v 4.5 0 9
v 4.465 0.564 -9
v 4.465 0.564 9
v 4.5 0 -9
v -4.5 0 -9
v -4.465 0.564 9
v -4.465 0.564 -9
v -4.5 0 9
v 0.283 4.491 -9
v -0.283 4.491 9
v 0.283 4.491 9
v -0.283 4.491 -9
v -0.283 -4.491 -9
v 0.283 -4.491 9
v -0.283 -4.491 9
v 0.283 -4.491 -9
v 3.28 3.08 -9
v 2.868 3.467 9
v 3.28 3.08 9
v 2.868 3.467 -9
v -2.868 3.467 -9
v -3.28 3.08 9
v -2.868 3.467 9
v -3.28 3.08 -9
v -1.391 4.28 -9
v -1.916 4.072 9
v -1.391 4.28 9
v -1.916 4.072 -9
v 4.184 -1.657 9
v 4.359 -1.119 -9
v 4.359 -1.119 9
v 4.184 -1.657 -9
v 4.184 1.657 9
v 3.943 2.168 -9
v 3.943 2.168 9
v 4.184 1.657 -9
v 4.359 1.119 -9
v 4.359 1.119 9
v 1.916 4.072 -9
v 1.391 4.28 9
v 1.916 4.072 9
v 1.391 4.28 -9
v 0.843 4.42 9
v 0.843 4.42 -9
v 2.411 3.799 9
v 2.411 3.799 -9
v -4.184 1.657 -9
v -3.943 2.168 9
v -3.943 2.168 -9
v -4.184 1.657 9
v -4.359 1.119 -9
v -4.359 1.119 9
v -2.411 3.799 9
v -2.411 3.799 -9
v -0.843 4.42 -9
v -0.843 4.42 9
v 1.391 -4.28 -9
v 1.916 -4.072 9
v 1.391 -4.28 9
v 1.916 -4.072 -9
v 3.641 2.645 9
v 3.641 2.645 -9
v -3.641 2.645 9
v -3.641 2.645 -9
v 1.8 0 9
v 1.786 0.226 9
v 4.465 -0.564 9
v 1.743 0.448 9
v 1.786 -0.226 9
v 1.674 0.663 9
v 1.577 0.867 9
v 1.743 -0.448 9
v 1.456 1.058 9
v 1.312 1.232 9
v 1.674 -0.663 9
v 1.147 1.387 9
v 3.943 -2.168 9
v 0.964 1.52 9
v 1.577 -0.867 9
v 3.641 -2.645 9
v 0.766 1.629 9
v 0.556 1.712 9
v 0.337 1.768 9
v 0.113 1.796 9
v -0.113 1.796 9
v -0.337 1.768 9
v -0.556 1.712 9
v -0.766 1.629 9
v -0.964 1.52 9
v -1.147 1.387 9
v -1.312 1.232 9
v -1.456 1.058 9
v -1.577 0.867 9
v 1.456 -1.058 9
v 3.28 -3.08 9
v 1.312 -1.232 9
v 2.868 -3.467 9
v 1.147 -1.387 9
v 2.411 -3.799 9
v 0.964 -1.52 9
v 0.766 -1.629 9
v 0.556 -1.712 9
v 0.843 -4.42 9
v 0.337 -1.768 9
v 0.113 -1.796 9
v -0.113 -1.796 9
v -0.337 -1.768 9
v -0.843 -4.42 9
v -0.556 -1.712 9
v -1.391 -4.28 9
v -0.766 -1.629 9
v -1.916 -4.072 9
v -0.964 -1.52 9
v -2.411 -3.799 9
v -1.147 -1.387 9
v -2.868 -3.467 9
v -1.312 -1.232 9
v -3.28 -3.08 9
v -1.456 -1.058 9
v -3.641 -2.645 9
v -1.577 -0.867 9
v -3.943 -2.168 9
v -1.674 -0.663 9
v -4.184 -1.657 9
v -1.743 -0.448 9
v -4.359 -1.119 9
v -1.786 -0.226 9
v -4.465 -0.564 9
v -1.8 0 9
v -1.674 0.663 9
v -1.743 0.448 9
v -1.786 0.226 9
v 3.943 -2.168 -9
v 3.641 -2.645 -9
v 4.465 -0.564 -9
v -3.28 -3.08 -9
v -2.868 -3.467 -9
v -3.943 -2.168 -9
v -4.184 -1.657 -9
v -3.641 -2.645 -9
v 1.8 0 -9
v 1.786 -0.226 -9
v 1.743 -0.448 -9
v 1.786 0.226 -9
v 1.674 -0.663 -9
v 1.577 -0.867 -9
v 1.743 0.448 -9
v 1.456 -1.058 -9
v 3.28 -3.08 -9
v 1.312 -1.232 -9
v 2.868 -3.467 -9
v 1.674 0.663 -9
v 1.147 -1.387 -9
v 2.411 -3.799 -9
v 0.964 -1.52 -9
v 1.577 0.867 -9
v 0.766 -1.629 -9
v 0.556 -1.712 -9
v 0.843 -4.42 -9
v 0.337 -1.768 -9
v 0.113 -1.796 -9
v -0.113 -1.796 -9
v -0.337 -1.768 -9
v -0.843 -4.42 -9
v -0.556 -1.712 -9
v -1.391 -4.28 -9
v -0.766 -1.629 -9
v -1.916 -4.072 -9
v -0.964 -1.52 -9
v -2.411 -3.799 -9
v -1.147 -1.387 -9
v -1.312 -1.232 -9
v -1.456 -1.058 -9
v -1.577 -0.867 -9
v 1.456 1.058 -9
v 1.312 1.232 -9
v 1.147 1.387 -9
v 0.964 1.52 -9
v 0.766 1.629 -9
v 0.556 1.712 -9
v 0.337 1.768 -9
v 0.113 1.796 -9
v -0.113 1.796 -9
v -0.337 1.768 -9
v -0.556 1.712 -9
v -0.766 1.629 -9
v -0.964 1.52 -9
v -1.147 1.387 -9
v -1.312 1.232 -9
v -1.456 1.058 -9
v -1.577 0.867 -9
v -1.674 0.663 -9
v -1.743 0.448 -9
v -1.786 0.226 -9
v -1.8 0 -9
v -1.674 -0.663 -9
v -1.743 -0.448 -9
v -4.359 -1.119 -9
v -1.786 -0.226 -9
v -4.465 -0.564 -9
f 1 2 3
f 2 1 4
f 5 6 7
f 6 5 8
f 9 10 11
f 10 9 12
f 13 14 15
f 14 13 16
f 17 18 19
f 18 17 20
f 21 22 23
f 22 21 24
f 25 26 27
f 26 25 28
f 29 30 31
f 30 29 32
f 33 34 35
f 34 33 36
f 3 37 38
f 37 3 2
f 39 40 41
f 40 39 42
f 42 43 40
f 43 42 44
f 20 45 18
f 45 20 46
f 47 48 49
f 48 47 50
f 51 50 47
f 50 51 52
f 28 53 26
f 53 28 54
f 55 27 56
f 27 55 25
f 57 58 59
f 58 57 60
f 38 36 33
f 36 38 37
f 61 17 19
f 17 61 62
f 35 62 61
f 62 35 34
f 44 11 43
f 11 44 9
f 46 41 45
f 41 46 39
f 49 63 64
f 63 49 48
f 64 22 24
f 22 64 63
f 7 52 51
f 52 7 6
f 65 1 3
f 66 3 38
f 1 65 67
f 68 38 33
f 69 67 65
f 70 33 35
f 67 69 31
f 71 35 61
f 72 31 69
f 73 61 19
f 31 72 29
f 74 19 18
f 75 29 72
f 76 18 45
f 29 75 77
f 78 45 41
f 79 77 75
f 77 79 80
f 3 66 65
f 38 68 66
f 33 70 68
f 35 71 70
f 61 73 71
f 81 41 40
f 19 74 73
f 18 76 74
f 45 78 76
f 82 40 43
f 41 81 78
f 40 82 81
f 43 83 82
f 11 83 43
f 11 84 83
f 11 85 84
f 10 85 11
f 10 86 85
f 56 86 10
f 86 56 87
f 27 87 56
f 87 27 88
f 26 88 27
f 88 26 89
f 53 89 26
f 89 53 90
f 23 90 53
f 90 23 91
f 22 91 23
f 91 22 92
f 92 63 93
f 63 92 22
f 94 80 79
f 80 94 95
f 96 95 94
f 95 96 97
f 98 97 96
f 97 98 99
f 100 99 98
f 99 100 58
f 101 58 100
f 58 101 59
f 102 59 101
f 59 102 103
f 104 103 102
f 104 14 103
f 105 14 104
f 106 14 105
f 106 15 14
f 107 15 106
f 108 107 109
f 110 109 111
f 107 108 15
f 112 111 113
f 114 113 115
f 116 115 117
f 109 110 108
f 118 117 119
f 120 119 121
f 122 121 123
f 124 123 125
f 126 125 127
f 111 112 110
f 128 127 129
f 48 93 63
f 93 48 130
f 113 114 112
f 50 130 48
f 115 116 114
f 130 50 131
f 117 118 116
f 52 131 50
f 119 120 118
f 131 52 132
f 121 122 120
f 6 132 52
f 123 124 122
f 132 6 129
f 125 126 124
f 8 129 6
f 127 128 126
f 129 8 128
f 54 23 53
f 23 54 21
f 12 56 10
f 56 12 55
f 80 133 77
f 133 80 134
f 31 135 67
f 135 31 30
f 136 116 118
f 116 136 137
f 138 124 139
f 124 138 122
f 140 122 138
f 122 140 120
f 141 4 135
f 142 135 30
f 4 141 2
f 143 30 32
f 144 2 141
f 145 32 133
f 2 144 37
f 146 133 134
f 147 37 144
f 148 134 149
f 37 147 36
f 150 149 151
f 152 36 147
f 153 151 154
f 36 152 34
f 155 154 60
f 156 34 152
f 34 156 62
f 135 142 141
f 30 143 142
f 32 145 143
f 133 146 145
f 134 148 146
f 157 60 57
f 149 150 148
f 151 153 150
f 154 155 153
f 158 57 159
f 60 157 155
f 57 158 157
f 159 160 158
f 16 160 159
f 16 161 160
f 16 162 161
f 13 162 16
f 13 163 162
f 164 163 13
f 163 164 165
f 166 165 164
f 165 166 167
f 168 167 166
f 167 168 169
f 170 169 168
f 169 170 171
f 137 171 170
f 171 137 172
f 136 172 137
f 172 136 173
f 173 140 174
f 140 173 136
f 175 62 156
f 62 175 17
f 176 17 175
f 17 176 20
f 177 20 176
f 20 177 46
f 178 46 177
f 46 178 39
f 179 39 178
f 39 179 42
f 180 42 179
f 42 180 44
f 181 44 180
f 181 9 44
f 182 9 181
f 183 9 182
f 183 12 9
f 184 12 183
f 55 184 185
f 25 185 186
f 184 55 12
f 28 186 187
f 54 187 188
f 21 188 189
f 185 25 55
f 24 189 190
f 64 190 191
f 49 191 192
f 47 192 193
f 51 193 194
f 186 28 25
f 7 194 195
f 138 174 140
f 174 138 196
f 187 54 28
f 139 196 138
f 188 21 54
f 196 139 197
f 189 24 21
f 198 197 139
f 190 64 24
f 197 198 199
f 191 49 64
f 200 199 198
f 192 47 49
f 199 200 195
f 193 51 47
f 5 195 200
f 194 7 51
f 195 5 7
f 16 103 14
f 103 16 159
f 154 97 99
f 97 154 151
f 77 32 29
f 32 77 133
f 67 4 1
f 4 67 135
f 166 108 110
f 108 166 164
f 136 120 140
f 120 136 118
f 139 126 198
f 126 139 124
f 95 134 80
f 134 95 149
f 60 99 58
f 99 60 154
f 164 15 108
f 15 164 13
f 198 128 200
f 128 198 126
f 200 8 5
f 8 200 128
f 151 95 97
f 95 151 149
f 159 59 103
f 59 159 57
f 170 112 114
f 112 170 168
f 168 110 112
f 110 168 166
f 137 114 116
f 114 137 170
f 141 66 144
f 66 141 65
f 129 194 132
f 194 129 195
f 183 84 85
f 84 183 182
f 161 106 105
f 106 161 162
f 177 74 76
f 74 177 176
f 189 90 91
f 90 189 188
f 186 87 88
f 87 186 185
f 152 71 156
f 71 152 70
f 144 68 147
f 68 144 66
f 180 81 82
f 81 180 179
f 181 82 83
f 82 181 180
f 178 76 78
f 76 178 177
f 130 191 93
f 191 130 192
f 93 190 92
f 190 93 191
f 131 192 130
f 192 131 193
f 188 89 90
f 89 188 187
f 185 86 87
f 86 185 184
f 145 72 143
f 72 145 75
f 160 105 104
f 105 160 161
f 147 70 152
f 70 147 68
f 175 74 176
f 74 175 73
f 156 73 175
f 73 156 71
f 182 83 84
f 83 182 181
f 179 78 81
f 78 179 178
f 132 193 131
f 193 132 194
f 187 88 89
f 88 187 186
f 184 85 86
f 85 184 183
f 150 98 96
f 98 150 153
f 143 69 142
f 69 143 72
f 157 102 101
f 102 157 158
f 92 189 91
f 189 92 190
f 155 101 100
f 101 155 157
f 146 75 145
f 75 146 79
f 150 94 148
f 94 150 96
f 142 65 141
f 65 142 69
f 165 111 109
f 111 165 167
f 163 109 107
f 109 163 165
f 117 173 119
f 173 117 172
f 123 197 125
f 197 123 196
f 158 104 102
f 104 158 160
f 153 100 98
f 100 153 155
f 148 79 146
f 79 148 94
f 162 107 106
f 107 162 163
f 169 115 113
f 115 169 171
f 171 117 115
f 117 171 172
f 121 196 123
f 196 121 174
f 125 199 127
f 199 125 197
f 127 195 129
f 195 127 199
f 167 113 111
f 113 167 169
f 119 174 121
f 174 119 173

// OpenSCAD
$fn = 50;


difference() {
	union() {
		translate(v = [0, 0, -9.0000000000]) {
			cylinder(h = 18, r = 4.5000000000);
		}
	}
	union() {
		translate(v = [0, 0, -100.0000000000]) {
			cylinder(h = 200, r = 1.8000000000);
		}
	}
}
